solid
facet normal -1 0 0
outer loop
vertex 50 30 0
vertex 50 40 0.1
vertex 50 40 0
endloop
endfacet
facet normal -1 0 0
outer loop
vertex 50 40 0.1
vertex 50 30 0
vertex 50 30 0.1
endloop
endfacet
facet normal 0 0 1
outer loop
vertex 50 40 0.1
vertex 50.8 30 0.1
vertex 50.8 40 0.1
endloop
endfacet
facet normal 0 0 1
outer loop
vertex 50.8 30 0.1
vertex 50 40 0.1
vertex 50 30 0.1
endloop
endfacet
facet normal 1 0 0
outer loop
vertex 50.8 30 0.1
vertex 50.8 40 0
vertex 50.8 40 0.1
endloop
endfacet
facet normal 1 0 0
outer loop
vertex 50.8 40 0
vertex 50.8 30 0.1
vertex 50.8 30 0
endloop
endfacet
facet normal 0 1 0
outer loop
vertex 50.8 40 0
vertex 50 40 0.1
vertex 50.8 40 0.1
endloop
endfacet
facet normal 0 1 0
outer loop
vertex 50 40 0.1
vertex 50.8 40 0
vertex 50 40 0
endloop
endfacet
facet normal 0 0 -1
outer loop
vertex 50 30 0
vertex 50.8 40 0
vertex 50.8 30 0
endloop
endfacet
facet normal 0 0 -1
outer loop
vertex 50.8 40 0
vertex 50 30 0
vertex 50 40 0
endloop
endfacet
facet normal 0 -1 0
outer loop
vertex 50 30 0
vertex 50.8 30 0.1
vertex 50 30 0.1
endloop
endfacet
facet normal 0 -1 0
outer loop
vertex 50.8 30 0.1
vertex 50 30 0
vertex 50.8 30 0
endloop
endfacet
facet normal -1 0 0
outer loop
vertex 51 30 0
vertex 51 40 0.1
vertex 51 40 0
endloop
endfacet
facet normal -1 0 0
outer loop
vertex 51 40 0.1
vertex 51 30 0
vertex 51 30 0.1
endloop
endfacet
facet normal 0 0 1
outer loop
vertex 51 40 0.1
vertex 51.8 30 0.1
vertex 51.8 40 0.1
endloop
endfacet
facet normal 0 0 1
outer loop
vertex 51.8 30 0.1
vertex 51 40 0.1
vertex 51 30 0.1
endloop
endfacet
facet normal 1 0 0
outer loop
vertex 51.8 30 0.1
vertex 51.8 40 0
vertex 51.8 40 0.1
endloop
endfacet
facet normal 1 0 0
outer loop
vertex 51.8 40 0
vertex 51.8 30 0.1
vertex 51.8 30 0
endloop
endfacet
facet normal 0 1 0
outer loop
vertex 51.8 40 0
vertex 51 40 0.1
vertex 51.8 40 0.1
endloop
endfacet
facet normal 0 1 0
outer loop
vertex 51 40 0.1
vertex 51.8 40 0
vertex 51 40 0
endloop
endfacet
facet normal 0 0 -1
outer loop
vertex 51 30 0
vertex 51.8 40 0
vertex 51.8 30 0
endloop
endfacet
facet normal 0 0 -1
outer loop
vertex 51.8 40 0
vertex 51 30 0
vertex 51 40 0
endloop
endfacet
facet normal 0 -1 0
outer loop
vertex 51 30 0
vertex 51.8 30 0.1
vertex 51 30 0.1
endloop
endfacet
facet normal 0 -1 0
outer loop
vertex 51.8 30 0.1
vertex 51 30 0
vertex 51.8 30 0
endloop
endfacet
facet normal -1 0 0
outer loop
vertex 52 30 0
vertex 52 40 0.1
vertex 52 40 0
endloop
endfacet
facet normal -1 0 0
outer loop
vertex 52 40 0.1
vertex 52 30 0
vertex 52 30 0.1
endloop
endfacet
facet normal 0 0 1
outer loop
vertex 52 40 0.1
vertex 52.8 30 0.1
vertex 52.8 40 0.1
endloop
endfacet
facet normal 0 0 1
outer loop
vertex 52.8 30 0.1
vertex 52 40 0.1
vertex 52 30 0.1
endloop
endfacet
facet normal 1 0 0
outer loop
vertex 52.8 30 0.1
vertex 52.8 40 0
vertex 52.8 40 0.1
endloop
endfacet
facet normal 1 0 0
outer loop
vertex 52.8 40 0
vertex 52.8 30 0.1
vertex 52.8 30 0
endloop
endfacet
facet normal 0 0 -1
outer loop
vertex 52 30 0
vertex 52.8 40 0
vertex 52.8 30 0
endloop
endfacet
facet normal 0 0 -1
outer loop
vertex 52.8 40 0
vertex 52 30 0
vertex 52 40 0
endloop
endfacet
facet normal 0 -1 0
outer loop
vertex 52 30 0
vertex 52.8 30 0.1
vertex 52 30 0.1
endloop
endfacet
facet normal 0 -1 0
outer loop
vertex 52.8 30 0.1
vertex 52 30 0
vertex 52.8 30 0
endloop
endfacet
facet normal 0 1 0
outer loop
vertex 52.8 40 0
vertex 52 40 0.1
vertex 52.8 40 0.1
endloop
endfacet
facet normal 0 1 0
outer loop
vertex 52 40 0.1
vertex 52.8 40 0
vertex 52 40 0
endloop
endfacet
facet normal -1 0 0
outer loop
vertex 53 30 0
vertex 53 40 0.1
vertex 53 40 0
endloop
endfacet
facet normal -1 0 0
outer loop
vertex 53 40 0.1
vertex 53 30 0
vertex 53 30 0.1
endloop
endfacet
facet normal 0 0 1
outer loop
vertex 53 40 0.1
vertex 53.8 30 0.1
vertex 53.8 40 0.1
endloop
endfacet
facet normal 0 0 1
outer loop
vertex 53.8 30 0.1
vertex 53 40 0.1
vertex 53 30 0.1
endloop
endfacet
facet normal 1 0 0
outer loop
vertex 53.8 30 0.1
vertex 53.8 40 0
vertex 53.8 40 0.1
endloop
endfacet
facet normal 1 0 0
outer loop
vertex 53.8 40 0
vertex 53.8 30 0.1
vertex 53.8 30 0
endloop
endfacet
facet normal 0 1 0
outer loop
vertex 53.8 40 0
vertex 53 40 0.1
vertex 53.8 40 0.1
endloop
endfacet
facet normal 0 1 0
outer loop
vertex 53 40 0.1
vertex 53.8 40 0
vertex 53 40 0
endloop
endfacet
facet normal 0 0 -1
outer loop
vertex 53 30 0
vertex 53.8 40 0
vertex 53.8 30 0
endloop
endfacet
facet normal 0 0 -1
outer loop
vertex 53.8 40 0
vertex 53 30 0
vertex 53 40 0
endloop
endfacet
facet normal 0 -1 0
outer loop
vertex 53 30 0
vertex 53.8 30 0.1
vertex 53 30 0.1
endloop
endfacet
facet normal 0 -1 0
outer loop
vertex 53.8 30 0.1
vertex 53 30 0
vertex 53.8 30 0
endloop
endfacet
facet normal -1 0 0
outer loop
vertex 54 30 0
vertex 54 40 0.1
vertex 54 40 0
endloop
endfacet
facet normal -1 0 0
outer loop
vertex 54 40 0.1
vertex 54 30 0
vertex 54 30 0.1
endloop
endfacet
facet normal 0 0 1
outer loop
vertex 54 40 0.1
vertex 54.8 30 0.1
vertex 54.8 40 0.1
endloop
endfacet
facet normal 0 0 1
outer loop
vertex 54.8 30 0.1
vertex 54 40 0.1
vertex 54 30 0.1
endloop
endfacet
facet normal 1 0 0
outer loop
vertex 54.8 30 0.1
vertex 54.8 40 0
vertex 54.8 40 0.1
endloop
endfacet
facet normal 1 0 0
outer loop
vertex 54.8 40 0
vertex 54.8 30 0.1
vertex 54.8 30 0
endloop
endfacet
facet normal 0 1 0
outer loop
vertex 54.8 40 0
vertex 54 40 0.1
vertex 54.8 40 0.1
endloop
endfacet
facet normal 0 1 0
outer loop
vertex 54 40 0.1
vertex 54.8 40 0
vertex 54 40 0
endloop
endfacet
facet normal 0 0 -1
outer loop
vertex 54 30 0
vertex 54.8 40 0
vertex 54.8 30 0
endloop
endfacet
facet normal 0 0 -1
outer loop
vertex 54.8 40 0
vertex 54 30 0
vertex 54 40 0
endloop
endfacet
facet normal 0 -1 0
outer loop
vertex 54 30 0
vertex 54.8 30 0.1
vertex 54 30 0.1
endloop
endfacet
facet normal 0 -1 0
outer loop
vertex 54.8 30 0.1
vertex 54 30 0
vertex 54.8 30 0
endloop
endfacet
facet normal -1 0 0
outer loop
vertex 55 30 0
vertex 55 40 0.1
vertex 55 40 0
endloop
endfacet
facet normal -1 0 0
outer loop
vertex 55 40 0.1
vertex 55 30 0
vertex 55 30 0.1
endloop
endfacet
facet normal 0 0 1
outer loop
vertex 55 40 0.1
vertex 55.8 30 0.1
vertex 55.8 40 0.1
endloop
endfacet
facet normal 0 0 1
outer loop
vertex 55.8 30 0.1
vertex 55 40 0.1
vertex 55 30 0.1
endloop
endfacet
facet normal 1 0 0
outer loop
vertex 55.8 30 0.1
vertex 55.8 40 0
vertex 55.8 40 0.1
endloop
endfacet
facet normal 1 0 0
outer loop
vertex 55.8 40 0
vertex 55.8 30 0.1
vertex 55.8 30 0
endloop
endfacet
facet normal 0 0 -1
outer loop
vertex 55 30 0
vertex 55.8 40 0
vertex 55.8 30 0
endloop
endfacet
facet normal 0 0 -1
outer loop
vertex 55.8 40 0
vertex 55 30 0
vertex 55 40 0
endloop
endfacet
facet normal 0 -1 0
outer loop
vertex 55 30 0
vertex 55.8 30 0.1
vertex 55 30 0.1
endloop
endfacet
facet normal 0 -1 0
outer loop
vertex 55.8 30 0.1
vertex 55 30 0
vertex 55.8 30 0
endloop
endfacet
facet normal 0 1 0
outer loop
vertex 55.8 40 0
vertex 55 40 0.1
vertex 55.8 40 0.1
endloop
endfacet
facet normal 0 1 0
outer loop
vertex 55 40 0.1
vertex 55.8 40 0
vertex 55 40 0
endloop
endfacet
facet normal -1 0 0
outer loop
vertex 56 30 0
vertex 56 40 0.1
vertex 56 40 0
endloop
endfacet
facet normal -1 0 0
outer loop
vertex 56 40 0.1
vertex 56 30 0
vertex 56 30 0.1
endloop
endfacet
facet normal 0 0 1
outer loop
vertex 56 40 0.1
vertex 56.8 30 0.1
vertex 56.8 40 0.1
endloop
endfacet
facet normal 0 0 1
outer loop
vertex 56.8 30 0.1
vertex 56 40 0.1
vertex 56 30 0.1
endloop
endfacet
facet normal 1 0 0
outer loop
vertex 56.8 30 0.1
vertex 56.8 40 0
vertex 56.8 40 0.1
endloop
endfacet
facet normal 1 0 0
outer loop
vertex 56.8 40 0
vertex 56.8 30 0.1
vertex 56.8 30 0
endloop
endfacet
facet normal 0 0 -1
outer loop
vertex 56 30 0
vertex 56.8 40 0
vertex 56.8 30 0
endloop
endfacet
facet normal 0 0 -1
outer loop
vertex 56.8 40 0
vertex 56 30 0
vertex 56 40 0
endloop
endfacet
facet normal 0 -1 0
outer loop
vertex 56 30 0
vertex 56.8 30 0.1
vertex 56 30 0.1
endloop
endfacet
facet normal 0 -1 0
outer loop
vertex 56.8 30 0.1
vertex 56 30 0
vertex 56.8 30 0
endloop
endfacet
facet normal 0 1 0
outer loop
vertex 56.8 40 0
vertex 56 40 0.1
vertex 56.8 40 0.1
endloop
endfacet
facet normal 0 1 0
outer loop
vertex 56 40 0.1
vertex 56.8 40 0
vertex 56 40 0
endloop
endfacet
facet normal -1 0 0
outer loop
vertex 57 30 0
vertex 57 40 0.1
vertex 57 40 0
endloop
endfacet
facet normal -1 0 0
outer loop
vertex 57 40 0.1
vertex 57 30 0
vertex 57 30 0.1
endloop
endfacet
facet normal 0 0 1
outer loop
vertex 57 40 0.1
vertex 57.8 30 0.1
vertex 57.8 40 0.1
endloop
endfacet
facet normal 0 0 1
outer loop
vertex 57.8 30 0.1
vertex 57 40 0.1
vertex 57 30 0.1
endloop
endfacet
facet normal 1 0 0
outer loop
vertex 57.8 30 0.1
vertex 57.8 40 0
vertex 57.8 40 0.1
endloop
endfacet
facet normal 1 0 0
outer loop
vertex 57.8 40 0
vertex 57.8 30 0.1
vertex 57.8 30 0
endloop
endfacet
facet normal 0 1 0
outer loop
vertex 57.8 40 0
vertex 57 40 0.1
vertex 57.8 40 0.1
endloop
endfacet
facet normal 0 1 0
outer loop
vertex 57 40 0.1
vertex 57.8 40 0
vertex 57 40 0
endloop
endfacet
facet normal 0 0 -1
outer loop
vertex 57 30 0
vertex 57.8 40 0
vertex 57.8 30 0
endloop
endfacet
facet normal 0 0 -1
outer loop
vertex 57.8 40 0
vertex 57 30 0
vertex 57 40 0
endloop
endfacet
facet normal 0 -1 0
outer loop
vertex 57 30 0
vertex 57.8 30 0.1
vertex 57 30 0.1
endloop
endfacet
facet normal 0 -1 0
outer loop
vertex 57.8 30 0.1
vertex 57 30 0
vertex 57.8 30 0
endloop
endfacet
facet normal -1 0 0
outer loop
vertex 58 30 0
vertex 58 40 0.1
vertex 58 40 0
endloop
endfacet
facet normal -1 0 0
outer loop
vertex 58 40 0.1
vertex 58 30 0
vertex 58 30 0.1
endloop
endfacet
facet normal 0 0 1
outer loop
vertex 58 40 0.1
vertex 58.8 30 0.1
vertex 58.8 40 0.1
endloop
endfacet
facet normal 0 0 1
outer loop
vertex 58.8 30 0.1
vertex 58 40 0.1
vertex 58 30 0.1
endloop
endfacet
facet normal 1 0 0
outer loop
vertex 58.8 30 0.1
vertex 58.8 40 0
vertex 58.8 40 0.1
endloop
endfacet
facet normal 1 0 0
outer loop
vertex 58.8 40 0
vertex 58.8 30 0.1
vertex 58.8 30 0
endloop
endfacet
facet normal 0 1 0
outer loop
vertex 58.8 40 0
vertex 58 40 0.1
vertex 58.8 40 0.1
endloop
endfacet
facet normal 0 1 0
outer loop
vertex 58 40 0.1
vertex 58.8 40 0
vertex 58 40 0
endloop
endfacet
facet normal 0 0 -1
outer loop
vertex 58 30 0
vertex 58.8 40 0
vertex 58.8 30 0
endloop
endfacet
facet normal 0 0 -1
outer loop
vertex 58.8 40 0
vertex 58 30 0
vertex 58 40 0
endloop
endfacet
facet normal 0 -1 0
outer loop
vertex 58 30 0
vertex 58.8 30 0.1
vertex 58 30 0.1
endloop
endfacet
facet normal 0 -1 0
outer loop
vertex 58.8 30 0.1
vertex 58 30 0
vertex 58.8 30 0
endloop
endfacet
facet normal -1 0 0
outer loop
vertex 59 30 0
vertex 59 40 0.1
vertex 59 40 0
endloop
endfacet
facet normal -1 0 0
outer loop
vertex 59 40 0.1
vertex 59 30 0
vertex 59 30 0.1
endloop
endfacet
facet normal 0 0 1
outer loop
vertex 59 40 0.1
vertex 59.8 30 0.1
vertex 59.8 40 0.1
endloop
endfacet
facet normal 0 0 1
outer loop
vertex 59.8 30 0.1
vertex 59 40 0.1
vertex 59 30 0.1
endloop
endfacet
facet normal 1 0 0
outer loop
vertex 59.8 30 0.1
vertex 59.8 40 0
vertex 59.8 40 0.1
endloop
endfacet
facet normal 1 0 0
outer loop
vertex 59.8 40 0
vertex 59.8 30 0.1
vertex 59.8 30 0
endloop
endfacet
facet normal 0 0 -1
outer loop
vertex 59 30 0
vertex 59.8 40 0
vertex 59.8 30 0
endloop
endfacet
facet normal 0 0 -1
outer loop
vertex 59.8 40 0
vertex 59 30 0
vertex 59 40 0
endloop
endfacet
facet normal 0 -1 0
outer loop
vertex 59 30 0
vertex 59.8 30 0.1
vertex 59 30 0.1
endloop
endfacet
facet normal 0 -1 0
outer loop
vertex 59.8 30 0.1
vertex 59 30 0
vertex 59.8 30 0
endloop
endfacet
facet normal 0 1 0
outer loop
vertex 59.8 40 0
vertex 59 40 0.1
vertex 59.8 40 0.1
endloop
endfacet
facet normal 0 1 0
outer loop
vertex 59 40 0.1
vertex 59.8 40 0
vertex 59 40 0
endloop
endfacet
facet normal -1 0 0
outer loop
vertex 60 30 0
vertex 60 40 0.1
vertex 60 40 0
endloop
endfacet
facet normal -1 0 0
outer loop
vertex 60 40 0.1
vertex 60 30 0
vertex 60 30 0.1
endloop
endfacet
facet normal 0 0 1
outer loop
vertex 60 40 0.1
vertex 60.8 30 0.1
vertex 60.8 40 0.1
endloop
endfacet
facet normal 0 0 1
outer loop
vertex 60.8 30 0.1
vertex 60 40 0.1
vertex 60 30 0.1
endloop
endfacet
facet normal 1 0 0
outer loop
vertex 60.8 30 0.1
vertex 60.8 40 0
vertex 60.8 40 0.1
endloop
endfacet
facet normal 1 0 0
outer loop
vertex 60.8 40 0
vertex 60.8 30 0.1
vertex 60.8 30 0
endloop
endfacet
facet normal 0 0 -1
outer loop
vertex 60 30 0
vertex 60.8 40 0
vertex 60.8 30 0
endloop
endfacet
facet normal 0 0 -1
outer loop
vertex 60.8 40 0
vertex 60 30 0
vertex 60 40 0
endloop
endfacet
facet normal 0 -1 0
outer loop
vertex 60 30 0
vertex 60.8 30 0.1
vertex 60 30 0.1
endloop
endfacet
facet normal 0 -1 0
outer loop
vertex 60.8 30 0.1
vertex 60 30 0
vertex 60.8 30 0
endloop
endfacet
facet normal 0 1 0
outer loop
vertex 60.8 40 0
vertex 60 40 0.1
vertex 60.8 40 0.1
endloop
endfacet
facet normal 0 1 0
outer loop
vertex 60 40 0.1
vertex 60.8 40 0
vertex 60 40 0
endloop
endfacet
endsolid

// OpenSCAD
translate([10+40,10+20,0])
        for (i = [0 : 10]){
            translate([i,0,0])
                cube(size = [0.8,10,0.1]);
    }
